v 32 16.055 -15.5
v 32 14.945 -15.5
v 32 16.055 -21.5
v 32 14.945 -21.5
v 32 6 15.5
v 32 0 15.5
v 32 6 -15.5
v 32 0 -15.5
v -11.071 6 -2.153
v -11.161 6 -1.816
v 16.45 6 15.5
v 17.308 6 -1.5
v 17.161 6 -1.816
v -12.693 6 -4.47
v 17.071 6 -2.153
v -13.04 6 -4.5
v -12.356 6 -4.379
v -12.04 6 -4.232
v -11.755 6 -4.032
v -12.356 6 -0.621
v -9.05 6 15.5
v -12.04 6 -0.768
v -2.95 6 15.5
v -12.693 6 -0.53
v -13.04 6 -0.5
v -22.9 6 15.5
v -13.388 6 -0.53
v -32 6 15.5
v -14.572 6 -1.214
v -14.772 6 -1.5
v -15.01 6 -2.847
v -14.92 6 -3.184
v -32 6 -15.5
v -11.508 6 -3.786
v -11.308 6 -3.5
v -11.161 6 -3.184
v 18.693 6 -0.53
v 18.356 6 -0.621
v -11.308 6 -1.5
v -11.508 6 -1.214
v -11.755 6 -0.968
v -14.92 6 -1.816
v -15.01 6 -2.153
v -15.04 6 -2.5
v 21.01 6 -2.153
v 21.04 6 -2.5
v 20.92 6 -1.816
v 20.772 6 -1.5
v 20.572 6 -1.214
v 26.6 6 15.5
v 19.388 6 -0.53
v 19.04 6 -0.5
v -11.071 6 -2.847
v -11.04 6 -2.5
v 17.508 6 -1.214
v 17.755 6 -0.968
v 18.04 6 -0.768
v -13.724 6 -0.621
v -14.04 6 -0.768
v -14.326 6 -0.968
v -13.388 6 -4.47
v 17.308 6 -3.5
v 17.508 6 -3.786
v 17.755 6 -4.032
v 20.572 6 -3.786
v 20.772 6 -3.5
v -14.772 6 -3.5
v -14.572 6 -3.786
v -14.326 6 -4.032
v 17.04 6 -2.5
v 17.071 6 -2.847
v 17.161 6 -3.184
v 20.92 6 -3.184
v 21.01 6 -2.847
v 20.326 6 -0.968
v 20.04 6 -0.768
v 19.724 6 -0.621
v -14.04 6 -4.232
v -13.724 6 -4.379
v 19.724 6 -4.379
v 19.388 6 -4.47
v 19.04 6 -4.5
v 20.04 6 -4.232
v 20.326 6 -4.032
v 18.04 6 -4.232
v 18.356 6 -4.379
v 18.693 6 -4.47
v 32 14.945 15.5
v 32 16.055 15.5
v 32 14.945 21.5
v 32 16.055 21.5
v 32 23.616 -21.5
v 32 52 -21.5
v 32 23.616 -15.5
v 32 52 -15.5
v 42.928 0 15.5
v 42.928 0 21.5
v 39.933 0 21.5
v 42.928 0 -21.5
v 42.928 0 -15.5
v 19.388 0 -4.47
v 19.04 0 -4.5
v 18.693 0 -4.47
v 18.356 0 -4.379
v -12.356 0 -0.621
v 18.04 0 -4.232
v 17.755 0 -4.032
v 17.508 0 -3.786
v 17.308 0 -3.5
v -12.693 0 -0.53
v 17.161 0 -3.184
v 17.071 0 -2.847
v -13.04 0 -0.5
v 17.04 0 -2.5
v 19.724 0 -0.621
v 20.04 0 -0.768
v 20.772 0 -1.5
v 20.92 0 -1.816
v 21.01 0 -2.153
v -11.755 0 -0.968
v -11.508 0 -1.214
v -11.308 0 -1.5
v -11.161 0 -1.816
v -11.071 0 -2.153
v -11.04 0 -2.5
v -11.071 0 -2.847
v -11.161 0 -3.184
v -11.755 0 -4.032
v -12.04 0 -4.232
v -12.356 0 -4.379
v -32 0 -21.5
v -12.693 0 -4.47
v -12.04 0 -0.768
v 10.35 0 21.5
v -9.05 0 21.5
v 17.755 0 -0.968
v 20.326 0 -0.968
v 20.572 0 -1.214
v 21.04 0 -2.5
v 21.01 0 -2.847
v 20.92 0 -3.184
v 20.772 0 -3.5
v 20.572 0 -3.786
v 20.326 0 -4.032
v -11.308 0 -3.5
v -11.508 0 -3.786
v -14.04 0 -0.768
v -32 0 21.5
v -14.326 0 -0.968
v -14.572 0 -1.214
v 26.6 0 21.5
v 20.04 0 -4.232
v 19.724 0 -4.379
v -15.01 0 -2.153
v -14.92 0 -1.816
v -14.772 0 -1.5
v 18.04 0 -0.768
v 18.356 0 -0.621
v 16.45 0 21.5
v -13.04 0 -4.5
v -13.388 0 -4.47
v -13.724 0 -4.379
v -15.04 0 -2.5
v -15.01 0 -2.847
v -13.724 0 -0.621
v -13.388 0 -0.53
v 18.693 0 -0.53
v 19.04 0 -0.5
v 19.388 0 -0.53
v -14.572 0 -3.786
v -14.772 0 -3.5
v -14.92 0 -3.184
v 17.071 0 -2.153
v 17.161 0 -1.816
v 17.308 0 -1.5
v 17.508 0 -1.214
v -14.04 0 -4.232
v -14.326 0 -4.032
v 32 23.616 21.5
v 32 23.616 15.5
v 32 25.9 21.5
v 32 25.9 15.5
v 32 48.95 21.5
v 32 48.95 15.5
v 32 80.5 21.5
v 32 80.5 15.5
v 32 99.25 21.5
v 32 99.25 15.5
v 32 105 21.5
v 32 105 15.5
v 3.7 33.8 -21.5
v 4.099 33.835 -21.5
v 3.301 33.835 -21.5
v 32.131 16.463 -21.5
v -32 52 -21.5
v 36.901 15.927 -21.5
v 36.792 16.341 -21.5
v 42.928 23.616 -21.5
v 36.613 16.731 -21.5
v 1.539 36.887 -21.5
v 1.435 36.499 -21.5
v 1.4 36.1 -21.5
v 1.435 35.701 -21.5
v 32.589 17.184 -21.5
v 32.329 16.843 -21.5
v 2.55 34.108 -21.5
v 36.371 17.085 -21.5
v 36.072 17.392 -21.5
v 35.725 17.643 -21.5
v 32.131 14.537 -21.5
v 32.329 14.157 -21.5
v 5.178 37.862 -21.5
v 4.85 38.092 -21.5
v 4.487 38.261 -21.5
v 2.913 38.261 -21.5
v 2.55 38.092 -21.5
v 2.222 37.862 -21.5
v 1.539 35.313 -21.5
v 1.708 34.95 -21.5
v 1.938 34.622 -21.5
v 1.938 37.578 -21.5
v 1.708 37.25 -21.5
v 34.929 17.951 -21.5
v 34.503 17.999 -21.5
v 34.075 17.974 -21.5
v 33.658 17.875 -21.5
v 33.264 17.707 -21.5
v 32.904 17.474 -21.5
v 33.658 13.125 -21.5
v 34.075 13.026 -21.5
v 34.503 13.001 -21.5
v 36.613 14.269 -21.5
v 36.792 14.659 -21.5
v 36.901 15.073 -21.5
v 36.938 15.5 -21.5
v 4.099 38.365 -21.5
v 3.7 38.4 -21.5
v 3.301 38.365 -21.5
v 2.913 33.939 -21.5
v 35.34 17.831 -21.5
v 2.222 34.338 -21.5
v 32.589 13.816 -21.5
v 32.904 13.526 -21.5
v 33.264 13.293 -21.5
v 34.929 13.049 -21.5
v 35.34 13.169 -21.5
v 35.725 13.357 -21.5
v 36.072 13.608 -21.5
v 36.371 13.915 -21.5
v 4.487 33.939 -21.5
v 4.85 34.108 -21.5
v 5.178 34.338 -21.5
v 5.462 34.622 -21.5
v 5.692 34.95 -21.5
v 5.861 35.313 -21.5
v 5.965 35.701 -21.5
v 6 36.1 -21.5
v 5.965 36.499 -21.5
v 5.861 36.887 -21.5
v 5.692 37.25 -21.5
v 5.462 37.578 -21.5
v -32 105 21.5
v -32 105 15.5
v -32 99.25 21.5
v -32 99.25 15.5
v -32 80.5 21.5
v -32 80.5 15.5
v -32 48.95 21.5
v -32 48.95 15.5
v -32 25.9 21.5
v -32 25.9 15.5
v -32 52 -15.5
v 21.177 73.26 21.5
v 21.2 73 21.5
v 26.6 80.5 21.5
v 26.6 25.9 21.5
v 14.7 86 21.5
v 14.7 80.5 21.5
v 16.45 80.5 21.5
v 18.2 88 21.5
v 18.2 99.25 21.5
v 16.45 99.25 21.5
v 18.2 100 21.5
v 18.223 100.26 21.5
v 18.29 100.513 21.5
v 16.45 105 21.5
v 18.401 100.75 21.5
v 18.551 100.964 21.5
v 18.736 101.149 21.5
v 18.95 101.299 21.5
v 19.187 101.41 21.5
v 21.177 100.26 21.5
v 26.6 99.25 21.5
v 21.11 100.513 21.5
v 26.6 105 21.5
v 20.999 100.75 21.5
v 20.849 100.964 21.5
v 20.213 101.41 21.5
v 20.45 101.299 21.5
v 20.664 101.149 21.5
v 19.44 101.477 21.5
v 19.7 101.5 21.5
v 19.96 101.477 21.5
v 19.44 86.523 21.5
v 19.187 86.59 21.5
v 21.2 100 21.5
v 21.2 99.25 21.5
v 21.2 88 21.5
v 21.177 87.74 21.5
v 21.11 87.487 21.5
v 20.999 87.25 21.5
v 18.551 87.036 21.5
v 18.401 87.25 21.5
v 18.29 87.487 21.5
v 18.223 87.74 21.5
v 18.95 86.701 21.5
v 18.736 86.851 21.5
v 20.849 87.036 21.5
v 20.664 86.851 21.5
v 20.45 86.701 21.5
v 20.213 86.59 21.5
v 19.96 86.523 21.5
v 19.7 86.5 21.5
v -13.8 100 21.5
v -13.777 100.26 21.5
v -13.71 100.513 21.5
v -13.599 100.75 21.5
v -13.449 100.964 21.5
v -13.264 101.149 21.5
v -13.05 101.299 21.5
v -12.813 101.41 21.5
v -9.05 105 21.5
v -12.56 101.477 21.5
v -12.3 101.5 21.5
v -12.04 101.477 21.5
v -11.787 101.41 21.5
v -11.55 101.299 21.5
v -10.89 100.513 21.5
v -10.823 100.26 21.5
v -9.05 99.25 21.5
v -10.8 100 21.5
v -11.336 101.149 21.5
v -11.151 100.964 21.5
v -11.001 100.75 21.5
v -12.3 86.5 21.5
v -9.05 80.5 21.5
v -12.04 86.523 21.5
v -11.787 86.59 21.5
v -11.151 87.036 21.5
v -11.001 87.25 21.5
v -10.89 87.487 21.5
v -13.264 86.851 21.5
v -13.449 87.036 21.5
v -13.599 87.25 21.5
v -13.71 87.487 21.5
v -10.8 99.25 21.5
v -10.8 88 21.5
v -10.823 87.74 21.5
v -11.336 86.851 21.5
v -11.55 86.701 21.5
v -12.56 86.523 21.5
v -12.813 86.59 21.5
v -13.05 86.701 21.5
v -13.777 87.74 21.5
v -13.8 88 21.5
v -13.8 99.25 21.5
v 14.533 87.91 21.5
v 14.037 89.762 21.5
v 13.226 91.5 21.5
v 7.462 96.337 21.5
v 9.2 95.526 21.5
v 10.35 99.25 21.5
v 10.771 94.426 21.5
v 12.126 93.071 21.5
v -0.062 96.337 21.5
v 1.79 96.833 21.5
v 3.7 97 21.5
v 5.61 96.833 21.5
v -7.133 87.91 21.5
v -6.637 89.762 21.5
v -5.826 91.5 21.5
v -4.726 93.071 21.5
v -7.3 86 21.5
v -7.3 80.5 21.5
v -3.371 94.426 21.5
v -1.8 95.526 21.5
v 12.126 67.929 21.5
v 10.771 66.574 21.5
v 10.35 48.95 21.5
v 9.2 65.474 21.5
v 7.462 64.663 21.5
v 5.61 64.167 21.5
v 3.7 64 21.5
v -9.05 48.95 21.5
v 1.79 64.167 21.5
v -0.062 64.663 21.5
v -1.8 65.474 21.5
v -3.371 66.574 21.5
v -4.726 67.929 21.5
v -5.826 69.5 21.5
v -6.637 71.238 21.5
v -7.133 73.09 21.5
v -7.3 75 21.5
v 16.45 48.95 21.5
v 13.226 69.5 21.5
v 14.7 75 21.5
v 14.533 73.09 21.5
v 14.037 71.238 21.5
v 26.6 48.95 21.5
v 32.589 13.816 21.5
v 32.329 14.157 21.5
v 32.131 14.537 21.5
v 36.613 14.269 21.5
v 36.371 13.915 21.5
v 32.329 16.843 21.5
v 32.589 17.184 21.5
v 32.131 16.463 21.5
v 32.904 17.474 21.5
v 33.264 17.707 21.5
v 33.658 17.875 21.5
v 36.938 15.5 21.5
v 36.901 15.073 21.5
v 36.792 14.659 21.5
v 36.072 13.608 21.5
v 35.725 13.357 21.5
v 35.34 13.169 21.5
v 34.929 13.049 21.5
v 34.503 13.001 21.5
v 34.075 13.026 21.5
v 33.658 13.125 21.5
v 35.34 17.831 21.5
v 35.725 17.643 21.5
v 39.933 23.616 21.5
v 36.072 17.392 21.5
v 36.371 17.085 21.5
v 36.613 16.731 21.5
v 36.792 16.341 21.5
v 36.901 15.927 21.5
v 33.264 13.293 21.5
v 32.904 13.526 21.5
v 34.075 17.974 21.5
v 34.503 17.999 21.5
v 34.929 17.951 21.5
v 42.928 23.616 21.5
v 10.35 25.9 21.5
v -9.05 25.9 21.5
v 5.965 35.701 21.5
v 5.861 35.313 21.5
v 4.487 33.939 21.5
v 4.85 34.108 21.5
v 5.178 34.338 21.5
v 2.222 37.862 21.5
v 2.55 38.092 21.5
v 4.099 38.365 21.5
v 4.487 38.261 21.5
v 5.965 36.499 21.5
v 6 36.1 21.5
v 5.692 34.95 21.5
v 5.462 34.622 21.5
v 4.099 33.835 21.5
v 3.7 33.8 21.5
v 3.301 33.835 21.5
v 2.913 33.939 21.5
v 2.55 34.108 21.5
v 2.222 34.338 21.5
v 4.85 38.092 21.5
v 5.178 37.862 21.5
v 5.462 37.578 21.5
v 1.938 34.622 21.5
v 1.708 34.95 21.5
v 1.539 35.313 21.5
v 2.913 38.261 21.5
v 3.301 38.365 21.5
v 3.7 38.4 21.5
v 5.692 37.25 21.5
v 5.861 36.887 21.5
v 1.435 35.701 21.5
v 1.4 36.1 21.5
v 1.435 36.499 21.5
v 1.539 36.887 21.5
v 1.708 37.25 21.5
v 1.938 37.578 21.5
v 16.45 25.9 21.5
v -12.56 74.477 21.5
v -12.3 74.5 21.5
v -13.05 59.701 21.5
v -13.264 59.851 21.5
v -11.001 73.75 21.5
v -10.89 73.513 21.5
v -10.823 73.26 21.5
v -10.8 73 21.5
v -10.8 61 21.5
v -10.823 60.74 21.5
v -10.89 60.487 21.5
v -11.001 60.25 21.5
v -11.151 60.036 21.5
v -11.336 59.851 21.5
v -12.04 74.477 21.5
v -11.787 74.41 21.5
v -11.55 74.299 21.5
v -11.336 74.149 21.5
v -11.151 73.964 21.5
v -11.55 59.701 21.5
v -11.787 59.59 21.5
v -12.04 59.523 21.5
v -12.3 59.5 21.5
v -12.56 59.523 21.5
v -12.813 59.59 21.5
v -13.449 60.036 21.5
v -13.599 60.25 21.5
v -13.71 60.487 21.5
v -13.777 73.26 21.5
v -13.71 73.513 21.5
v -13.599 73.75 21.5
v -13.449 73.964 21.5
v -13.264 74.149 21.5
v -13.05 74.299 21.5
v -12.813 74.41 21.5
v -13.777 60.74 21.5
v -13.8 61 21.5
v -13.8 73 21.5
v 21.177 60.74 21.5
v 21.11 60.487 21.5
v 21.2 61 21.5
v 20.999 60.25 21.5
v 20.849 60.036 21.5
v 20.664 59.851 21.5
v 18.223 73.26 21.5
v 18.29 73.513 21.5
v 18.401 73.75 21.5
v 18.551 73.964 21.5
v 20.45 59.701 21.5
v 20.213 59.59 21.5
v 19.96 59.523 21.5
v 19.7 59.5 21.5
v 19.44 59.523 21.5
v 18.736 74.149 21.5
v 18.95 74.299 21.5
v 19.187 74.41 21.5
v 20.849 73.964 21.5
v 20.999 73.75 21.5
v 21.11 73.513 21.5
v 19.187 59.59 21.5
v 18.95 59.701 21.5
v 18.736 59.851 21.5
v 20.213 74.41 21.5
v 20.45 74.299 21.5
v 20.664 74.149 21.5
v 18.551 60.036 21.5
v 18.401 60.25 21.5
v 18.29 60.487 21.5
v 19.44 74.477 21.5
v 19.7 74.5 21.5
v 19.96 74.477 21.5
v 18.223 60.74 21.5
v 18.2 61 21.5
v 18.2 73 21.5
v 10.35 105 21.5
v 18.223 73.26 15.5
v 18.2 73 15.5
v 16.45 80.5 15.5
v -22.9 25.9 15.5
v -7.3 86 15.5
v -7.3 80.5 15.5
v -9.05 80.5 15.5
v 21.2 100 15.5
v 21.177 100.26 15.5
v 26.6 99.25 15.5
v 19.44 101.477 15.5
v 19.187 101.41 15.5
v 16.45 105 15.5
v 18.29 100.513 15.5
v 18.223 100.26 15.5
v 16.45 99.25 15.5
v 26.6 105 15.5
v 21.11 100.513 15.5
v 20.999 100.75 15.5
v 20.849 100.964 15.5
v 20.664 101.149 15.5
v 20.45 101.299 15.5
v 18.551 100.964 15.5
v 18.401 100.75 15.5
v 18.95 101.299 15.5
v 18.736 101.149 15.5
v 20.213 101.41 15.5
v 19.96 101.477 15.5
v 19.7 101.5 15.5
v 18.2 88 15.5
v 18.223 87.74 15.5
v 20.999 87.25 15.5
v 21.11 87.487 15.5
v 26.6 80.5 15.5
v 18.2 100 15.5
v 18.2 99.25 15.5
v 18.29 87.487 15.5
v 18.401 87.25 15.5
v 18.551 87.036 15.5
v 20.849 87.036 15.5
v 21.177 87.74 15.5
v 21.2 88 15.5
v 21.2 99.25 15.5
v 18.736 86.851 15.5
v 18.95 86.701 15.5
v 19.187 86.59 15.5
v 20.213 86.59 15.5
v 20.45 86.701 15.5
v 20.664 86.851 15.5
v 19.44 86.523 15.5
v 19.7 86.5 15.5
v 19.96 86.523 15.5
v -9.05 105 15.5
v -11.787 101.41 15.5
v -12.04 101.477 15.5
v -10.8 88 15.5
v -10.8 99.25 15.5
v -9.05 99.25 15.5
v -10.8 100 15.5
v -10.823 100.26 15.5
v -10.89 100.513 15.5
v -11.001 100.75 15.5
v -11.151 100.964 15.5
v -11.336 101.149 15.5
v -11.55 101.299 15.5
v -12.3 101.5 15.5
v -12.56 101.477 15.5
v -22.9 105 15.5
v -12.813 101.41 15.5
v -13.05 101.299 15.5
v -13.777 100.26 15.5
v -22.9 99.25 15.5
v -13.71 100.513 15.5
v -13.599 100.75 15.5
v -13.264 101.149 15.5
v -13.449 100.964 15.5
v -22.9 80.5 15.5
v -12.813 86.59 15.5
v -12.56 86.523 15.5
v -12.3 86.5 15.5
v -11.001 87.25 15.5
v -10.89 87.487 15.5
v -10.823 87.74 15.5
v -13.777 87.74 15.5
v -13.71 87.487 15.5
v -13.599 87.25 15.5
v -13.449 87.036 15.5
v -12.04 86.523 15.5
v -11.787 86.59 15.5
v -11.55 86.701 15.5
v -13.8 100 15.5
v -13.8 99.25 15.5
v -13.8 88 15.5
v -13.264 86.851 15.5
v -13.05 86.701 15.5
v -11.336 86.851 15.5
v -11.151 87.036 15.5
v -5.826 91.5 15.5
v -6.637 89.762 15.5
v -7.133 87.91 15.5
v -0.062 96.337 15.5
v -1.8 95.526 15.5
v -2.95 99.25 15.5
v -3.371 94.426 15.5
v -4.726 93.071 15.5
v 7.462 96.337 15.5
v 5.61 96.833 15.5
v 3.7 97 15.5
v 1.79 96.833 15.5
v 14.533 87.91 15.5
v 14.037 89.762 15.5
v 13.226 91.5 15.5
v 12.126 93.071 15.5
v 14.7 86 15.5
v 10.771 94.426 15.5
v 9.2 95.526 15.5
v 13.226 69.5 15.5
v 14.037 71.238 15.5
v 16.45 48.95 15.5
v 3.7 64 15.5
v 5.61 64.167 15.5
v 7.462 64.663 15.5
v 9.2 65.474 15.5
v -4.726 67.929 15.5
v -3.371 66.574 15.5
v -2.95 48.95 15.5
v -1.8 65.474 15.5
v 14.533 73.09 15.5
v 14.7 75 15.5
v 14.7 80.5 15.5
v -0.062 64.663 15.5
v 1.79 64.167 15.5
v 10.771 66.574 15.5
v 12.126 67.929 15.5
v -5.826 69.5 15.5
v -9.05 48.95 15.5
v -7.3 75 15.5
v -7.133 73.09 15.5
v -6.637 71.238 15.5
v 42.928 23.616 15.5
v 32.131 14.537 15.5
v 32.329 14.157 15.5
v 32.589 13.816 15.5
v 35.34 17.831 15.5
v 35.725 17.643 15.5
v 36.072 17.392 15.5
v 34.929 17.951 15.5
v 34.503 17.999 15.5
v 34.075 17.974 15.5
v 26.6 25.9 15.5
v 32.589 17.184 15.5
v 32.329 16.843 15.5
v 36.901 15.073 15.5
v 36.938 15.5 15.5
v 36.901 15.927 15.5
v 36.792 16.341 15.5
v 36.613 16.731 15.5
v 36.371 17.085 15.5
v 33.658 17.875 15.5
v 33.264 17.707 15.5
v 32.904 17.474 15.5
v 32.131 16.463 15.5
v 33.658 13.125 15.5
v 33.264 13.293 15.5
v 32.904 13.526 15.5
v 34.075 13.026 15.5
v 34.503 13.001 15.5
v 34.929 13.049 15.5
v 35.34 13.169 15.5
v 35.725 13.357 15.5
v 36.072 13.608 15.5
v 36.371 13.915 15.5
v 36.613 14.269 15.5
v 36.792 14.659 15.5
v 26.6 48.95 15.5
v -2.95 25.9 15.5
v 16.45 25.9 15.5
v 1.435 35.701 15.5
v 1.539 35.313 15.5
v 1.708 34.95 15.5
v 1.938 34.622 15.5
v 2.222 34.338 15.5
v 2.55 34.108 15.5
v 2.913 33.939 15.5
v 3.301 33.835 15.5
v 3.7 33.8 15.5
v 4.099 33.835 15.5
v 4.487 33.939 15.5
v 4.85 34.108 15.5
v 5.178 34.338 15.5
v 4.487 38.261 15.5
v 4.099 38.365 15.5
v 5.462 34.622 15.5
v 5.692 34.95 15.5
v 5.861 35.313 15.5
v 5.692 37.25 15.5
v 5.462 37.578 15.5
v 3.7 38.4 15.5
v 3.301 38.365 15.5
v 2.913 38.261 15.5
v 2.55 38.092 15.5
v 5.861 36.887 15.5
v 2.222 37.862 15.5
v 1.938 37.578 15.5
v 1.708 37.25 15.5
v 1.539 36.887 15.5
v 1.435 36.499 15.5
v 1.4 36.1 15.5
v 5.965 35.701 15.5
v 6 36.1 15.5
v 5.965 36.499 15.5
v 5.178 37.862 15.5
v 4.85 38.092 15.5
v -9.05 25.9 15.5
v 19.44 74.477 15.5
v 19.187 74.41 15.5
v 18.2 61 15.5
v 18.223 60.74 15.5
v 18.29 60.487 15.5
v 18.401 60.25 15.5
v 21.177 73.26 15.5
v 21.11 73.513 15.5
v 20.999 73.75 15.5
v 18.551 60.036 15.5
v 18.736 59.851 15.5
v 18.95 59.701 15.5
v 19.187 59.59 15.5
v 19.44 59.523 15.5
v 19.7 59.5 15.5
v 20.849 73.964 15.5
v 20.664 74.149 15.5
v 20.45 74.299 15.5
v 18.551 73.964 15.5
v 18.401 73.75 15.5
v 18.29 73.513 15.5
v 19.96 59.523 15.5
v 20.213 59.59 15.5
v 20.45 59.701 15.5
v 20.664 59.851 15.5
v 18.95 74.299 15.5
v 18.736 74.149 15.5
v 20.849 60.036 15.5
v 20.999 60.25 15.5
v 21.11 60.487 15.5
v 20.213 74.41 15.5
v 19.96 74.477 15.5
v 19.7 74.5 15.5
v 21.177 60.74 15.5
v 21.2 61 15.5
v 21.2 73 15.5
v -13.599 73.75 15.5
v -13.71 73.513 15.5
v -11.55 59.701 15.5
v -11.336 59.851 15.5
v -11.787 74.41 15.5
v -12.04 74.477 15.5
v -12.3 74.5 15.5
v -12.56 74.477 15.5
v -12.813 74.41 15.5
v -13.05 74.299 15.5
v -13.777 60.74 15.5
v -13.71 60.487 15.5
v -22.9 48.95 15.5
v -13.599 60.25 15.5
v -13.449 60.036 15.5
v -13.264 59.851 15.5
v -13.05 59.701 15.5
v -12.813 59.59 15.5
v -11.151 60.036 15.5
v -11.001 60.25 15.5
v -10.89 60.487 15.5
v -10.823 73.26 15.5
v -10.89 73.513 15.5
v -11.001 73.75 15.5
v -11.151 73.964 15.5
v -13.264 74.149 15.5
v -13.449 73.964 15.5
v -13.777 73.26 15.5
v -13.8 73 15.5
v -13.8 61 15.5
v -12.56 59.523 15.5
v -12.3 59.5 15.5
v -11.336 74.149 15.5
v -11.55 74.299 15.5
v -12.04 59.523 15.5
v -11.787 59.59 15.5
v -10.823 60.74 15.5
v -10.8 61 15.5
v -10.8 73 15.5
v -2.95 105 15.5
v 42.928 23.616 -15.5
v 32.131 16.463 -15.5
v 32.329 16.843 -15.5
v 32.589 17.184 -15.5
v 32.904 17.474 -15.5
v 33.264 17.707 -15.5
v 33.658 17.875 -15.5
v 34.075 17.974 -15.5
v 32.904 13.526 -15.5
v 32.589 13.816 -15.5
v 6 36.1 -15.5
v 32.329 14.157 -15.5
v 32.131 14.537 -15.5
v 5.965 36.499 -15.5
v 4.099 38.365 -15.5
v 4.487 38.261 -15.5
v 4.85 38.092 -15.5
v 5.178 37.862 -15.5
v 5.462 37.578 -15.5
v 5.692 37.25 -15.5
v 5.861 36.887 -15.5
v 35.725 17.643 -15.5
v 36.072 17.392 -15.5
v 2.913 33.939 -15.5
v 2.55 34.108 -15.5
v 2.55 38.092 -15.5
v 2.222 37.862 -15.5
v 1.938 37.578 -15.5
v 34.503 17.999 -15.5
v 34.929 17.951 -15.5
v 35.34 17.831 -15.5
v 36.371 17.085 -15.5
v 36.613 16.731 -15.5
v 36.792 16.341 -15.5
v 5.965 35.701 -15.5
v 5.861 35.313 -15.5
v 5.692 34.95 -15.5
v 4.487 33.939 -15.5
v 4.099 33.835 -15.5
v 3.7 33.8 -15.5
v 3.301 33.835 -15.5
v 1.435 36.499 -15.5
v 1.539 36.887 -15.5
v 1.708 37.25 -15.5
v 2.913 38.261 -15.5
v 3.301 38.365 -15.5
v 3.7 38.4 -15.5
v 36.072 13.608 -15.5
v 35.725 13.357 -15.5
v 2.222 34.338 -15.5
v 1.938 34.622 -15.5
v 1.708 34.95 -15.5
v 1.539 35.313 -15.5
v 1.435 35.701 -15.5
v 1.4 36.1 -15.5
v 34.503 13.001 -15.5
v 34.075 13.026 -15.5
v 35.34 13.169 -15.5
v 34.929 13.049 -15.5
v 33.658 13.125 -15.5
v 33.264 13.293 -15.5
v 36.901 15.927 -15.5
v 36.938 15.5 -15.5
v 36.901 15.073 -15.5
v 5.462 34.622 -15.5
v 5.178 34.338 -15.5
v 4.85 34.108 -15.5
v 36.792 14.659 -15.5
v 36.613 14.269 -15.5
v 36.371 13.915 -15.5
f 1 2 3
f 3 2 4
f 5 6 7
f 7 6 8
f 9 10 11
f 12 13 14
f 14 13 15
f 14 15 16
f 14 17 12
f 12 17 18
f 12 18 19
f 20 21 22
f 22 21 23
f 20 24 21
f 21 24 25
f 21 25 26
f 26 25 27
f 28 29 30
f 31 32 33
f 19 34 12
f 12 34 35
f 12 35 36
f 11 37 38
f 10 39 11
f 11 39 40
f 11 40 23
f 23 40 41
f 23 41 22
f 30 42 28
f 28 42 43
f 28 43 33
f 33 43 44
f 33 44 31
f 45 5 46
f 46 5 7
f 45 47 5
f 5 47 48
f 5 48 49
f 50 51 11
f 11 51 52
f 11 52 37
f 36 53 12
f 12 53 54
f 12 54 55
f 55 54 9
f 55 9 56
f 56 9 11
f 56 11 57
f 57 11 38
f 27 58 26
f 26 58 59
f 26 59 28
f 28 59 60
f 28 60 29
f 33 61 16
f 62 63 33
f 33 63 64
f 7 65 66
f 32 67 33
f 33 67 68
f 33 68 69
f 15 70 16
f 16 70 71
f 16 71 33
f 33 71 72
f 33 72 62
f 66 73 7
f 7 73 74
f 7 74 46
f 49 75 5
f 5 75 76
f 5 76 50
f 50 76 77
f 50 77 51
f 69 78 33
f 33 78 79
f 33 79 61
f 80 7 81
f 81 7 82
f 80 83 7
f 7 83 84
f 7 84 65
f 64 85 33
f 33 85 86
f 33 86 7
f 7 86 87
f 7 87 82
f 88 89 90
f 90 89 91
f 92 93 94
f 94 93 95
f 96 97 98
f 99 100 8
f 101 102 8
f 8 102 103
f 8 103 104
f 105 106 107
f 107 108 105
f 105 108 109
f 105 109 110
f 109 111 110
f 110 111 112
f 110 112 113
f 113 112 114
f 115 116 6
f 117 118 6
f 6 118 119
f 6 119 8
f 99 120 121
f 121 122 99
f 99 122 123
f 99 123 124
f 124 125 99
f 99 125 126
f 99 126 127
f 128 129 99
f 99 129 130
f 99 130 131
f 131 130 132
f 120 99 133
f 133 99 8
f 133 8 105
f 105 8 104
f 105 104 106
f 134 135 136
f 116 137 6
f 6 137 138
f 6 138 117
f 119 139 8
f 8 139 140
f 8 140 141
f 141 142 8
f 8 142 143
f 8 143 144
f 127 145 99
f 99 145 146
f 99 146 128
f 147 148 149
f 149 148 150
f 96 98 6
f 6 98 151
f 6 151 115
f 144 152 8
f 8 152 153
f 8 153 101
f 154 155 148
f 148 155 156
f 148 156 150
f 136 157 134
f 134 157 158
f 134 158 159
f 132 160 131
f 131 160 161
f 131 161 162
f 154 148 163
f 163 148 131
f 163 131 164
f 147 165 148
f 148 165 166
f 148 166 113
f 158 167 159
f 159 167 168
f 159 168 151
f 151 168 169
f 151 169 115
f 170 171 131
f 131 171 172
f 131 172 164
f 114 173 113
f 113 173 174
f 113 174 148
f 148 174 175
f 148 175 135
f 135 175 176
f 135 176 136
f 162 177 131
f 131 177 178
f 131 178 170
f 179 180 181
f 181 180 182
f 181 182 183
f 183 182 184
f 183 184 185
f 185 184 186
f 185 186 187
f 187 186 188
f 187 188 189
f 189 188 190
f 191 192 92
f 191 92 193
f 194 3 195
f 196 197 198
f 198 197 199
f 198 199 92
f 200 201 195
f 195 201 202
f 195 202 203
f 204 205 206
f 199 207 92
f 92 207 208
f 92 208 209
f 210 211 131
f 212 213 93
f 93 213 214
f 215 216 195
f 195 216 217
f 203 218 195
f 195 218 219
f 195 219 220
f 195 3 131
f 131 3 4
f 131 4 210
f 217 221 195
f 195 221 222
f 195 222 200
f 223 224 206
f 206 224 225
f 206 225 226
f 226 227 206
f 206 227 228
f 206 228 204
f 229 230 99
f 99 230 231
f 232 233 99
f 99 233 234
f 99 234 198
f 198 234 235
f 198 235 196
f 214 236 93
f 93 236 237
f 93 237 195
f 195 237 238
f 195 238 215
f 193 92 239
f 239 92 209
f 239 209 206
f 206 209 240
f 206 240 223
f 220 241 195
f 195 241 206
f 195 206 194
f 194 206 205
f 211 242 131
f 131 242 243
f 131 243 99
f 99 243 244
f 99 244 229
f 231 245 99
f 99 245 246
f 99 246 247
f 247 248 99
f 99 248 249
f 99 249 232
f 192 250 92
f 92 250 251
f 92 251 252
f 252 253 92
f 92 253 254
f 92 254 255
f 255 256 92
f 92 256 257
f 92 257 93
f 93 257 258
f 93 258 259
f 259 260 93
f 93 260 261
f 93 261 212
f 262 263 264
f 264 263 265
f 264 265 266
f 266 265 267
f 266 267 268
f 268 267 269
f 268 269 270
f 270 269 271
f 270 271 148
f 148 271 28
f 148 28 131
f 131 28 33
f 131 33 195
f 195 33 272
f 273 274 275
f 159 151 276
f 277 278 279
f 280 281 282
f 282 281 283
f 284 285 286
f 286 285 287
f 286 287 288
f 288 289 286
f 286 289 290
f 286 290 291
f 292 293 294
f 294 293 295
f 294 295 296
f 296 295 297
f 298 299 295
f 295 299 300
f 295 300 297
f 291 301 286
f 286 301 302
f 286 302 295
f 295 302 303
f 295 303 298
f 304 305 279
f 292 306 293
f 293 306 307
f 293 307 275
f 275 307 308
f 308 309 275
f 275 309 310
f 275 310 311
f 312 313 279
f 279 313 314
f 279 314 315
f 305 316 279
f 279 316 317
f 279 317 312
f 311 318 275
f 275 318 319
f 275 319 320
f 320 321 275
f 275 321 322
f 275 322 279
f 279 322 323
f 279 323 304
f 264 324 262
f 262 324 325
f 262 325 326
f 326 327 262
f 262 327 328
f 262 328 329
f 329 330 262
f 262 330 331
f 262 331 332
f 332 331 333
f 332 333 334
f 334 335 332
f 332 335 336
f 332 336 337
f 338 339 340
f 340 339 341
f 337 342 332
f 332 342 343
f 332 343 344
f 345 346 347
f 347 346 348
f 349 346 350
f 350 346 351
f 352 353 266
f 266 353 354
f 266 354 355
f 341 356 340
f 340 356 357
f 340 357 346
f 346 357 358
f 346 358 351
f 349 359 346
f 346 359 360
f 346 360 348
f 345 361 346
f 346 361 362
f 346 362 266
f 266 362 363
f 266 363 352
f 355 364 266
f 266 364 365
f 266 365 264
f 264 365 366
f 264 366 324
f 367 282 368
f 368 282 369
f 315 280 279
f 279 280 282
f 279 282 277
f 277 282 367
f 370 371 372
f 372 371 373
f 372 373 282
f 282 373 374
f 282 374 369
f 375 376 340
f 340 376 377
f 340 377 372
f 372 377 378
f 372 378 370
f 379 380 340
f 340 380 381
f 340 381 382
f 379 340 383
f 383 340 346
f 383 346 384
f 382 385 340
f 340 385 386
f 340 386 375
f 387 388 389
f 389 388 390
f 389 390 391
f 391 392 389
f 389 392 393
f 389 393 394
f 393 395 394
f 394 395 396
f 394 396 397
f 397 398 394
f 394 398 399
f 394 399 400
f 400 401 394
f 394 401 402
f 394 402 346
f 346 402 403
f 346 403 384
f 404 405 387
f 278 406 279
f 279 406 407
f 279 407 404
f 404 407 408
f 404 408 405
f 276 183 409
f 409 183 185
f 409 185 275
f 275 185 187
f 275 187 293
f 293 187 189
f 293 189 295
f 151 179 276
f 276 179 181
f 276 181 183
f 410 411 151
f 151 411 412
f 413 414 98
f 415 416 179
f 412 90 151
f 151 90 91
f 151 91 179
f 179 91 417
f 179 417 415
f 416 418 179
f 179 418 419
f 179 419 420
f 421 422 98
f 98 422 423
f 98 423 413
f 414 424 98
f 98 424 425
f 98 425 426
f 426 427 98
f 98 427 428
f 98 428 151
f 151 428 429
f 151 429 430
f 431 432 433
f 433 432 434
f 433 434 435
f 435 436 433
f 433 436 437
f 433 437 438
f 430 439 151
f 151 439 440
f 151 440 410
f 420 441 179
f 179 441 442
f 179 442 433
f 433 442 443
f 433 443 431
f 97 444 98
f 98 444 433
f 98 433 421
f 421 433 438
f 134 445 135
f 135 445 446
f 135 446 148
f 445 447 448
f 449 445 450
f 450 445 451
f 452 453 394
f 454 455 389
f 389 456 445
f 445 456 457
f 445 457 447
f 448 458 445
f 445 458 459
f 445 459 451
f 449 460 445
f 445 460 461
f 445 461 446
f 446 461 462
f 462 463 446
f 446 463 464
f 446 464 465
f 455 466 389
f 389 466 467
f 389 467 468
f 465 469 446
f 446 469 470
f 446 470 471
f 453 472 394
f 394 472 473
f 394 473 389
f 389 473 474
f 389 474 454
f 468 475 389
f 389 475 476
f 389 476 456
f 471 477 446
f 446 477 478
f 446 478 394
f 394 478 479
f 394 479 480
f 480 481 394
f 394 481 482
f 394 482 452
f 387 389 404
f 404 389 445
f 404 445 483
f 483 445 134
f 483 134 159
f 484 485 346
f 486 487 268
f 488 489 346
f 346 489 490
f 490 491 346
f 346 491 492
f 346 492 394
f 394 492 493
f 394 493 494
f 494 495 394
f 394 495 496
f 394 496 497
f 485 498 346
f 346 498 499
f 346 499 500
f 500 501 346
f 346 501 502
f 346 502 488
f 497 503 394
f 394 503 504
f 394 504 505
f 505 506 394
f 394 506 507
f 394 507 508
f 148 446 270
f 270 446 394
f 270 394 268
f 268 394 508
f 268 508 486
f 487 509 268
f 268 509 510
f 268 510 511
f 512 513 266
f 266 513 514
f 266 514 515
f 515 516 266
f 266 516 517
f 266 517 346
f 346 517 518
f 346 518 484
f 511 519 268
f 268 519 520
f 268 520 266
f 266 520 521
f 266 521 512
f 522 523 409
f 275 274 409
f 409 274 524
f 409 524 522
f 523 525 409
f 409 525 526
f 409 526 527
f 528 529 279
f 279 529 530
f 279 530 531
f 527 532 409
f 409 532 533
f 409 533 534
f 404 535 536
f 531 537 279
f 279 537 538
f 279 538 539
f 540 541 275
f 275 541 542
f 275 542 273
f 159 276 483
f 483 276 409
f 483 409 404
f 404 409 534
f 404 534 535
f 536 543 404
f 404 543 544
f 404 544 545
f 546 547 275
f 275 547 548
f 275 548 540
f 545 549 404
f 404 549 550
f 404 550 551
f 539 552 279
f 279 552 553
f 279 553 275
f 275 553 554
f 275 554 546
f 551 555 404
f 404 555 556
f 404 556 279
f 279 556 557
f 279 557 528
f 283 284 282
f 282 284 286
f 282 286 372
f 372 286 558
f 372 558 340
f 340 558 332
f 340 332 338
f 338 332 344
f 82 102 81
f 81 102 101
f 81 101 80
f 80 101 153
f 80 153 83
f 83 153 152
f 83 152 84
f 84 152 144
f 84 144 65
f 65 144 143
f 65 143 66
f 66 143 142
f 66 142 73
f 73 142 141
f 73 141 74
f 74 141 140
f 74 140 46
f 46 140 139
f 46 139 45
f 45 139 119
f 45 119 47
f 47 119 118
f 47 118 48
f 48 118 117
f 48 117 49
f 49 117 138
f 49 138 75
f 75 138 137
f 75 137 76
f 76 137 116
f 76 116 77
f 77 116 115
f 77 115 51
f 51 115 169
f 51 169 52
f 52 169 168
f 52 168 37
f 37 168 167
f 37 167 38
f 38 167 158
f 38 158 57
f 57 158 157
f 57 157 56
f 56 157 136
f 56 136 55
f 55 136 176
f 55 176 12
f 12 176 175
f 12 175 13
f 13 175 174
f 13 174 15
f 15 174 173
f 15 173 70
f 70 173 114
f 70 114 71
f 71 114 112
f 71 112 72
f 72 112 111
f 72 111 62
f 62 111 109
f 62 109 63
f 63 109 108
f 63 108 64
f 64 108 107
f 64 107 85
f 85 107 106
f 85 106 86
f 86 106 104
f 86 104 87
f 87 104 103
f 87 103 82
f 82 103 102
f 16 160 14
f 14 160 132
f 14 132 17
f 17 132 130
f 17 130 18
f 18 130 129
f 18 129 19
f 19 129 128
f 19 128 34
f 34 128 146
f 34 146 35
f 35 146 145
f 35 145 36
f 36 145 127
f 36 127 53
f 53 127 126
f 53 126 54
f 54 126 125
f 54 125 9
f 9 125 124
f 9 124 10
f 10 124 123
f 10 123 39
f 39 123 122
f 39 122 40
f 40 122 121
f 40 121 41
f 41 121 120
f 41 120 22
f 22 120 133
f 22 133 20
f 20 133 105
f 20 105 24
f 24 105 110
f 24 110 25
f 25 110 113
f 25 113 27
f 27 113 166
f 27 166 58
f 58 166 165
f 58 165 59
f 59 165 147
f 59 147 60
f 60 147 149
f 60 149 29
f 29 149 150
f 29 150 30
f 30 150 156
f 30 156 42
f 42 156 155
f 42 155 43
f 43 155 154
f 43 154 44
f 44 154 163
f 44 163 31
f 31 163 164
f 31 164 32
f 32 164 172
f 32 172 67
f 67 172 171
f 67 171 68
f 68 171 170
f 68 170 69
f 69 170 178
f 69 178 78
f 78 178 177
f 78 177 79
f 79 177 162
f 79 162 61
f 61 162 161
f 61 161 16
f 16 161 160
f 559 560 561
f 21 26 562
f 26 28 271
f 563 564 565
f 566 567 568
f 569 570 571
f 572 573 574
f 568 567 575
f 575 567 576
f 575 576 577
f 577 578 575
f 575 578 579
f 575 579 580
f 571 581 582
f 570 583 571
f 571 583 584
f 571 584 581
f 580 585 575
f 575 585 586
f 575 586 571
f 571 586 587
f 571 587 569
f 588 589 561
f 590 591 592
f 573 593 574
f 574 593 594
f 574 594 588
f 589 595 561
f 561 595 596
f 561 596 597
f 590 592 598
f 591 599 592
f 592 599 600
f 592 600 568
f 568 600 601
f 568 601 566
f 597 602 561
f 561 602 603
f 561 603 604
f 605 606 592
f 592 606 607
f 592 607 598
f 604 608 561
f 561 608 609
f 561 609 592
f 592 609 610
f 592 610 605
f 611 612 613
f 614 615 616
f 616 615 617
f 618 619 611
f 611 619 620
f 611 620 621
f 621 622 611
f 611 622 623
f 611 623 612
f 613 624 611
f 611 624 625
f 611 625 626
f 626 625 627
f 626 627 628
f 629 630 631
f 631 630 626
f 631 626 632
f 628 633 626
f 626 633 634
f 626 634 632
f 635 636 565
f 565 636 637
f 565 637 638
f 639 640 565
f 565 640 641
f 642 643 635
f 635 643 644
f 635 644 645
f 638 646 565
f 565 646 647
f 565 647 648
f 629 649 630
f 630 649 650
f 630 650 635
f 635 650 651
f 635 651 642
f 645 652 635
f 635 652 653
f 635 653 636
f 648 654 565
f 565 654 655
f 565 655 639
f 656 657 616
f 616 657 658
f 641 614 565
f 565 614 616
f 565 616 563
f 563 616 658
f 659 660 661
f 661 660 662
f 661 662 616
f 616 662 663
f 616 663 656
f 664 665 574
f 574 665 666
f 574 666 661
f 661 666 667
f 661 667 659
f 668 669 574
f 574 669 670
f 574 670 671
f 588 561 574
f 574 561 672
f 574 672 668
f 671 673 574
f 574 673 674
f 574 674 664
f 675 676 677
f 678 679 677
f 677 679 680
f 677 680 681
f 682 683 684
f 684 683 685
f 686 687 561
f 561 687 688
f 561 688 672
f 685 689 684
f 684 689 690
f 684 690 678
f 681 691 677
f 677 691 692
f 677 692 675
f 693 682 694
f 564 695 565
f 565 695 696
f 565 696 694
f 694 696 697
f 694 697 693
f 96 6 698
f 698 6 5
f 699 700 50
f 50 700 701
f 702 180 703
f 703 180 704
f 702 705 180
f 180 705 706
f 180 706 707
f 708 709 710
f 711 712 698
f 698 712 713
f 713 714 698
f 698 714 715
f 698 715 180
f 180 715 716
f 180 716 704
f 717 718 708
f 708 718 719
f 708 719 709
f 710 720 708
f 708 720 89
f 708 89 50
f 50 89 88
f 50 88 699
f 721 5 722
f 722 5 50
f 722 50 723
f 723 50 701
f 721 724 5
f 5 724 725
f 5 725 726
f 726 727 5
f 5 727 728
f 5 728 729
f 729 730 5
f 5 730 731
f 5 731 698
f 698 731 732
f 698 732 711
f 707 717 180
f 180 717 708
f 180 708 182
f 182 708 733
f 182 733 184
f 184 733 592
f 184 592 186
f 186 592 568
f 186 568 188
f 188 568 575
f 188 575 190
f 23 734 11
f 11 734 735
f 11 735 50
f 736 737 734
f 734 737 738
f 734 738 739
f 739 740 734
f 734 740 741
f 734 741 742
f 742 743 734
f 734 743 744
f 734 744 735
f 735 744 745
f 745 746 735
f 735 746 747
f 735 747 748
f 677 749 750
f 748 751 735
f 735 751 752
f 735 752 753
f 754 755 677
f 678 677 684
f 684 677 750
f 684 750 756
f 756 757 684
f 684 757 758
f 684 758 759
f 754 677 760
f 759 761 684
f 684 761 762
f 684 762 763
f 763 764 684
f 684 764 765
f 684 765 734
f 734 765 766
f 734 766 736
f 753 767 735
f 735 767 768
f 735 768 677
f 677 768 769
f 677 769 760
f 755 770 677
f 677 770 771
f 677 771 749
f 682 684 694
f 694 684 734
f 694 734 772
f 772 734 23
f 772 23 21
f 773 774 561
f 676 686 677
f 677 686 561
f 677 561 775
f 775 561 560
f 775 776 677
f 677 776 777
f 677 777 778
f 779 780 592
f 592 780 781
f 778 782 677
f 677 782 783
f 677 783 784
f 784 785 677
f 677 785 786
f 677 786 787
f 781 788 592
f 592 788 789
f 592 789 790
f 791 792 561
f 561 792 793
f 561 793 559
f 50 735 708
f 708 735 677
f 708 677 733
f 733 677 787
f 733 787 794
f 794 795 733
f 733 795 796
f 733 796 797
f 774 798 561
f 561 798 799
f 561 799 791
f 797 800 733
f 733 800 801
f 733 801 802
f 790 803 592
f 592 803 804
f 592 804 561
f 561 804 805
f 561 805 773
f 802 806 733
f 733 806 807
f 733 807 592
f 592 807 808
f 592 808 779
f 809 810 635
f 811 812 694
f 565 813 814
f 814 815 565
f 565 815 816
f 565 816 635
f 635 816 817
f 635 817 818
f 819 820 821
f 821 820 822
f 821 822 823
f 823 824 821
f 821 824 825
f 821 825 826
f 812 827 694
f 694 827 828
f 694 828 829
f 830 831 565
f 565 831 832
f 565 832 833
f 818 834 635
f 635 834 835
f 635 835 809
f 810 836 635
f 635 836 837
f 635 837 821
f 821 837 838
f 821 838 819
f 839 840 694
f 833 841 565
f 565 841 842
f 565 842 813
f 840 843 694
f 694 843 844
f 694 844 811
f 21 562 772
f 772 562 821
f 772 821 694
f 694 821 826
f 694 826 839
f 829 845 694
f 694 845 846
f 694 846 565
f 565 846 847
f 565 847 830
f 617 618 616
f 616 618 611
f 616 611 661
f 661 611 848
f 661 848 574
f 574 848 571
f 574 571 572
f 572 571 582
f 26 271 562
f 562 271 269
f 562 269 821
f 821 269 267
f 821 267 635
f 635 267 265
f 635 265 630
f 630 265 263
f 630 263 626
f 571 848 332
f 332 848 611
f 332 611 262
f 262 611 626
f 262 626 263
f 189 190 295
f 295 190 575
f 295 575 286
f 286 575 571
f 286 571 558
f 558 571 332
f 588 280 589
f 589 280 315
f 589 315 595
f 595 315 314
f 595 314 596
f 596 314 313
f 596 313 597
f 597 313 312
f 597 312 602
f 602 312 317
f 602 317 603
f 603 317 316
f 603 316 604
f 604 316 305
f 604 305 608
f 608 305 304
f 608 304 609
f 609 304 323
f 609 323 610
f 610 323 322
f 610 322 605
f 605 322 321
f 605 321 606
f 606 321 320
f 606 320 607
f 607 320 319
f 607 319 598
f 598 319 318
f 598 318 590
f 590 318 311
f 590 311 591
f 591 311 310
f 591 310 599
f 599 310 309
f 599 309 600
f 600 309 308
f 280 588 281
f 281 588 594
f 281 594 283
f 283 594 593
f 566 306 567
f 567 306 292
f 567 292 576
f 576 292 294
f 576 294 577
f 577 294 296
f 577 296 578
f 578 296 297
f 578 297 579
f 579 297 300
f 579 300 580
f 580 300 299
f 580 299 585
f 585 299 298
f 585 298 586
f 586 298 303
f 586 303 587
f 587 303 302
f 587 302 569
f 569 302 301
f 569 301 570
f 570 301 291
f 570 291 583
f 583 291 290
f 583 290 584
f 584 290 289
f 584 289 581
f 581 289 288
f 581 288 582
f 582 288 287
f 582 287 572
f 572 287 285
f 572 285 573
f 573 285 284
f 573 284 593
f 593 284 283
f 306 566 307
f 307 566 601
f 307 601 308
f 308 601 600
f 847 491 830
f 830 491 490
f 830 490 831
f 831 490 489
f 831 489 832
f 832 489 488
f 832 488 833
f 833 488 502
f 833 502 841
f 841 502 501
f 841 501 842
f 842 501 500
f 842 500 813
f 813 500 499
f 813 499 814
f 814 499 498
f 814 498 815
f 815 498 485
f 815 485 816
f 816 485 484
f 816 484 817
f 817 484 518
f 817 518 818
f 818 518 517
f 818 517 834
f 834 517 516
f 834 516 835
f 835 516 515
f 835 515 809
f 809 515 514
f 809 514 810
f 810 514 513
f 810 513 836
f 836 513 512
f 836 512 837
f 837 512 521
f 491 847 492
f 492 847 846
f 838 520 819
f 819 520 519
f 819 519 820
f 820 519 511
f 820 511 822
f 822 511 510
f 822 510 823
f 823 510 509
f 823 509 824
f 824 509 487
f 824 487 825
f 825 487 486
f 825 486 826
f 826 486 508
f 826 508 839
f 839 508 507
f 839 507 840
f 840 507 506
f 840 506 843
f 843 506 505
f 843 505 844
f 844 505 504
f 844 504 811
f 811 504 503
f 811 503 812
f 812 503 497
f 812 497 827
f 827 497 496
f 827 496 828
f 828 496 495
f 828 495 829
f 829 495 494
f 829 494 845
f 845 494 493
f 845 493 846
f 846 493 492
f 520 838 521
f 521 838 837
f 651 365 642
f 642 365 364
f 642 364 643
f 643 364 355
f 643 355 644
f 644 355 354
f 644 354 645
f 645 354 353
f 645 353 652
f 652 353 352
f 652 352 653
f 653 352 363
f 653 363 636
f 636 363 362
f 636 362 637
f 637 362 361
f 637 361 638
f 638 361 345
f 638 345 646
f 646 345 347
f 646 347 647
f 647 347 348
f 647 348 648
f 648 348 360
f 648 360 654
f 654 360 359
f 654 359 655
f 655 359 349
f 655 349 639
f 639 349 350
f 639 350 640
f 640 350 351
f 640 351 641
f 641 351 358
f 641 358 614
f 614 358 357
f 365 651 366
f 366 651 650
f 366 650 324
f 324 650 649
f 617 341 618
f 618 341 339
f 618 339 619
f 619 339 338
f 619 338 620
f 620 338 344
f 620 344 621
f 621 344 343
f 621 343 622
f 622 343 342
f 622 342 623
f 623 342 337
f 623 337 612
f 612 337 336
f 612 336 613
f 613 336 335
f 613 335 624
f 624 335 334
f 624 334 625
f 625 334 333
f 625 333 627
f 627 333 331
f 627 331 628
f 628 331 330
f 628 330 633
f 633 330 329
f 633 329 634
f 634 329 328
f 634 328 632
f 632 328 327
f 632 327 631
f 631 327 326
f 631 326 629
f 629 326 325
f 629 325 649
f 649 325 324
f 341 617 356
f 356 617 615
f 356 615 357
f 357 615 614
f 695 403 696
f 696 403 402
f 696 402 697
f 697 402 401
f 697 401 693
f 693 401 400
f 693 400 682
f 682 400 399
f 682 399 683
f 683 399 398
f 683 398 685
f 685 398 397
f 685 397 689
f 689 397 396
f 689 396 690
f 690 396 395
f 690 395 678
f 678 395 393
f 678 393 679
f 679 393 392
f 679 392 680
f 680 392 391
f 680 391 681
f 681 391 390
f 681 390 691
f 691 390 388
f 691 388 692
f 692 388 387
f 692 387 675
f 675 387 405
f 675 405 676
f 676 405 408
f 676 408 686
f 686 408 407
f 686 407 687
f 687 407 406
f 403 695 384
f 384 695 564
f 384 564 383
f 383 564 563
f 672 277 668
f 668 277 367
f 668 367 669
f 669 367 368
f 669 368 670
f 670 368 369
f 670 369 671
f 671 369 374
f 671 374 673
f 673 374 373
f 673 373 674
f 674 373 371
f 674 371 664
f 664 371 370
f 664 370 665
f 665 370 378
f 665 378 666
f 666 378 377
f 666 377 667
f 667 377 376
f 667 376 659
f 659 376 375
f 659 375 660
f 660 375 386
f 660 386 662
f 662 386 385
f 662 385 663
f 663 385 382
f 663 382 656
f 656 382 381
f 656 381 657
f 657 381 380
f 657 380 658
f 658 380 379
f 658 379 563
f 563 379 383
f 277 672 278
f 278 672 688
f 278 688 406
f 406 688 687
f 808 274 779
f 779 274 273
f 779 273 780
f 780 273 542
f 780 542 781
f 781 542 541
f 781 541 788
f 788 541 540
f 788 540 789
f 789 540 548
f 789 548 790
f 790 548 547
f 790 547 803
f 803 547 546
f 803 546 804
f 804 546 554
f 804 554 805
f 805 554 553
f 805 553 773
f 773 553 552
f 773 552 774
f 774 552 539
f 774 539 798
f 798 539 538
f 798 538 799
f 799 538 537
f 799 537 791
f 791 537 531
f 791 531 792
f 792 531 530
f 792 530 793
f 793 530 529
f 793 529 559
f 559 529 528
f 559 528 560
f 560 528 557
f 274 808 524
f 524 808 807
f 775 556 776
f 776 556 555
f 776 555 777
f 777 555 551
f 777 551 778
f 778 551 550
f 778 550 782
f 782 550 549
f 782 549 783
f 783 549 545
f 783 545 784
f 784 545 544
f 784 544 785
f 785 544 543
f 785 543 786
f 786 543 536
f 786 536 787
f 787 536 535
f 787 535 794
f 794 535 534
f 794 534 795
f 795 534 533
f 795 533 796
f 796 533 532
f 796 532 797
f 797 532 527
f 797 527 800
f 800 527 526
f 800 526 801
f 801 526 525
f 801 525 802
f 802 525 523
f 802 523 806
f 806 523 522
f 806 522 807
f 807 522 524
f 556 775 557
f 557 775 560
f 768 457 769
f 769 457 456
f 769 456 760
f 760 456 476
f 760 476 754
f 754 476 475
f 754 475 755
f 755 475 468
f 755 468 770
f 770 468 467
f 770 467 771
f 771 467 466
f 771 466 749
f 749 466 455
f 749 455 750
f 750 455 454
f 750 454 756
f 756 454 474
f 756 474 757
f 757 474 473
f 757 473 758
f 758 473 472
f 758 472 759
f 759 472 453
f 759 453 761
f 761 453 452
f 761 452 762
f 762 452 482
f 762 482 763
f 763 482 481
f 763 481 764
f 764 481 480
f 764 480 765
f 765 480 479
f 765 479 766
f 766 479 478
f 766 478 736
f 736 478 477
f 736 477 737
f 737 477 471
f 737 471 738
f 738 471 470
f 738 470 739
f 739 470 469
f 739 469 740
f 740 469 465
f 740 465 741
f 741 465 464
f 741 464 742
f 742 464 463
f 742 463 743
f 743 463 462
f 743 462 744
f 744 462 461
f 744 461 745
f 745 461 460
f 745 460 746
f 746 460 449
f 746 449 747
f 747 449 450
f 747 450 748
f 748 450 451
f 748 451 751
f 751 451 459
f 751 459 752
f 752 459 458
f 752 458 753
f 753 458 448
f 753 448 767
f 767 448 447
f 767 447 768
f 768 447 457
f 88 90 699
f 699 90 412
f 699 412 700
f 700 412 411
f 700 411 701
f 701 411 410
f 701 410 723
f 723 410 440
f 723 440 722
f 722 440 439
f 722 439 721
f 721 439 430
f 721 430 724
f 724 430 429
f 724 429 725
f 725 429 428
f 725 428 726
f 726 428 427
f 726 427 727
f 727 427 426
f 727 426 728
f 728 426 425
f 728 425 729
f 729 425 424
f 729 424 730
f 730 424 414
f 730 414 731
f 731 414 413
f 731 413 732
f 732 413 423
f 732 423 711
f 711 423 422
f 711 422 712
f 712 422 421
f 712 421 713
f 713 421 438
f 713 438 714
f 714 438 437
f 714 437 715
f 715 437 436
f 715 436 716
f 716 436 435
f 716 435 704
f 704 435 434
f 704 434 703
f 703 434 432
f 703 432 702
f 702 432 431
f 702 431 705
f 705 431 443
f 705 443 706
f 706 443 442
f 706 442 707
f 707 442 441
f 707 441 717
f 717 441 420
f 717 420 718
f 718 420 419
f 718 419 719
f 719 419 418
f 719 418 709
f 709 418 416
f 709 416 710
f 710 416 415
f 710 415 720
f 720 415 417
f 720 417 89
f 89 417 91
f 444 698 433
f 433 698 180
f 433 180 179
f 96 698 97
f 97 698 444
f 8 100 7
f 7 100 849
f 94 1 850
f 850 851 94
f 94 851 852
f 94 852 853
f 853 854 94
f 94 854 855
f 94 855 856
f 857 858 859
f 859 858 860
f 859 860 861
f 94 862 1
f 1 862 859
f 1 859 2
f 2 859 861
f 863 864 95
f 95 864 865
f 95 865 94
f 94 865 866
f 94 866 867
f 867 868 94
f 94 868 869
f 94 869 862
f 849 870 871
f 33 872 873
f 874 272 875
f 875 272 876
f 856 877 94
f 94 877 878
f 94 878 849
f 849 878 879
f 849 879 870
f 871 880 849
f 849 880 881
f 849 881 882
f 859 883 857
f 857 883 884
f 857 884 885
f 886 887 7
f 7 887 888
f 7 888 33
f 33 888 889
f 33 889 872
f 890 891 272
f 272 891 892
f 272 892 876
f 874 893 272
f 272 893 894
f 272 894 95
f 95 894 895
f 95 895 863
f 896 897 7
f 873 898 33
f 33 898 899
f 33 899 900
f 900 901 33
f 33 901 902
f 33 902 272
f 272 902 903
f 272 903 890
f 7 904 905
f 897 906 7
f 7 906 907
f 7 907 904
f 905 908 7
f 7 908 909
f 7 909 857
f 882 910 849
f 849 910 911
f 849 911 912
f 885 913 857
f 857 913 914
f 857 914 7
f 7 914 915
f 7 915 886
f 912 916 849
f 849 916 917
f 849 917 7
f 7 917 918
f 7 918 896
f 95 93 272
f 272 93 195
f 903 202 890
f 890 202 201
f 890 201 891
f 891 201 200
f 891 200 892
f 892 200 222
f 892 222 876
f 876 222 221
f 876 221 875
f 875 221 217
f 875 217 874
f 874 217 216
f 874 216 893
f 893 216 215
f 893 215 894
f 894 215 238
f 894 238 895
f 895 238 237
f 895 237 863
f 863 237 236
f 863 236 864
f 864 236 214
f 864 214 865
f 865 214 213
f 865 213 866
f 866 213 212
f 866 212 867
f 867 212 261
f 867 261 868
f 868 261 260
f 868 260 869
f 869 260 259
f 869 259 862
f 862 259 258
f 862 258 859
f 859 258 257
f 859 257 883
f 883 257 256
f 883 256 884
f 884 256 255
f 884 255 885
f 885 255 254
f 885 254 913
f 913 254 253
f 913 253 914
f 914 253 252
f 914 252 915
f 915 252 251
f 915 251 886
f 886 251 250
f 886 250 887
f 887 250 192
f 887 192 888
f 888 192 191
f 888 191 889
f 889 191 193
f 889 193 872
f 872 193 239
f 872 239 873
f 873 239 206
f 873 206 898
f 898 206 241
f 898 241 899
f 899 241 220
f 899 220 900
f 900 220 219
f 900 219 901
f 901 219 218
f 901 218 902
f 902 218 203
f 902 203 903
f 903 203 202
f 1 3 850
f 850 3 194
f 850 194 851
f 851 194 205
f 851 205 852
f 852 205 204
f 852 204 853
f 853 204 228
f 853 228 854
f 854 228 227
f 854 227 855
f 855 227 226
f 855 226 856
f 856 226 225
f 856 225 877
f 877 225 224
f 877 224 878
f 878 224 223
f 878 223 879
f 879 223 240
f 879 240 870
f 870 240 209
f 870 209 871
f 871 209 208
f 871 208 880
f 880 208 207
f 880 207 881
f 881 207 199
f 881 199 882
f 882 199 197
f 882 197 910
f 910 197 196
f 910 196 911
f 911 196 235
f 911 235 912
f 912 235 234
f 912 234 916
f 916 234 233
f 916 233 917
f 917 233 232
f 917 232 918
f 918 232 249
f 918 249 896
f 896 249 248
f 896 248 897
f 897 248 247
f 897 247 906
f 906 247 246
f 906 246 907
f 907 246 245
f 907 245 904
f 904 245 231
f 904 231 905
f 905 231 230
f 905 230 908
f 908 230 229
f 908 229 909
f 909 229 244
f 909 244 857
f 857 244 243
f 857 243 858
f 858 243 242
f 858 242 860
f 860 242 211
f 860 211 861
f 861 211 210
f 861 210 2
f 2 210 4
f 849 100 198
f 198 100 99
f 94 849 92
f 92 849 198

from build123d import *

# Parameters (mm, degrees)
CROQUIS1_W              = 64
CROQUIS1_H              = 43
CROQUIS1_R              = 2
SALIENTE_EXTRUIR1_DEPTH = 6
CROQUIS2_W              = 64
CROQUIS2_H              = 6
SALIENTE_EXTRUIR2_DEPTH = 99
CROQUIS3_R              = 2.3
CORTAR_EXTRUIR1_DEPTH   = 118.889779031
SALIENTE_EXTRUIR3_DEPTH = 6
CROQUIS5_W              = 64
CROQUIS5_H              = 6
SALIENTE_EXTRUIR4_DEPTH = 46
CORTAR_EXTRUIR2_START   = -6
CROQUIS6_R              = 2.3
CORTAR_EXTRUIR2_DEPTH   = 6
SALIENTE_EXTRUIR5_START = -6
SALIENTE_EXTRUIR5_DEPTH = 6


with BuildPart() as part:
    # Croquis1 → Saliente-Extruir1 (new body)
    with BuildSketch(Plane(origin=(0, 0, 0), x_dir=(1, 0, 0), z_dir=(0, 1, 0))):
        Rectangle(CROQUIS1_W, CROQUIS1_H)
        with Locations(Location((19.040268394, 2.5, 0), (0, 0, 270))):
            Circle(CROQUIS1_R, mode=Mode.SUBTRACT)
        with Locations(Location((-13.040268394, 2.5, 0), (0, 0, 90))):
            Circle(CROQUIS1_R, mode=Mode.SUBTRACT)
    extrude(amount=SALIENTE_EXTRUIR1_DEPTH)

    # Croquis2 → Saliente-Extruir2 (add)
    with BuildSketch(Plane(origin=(0, 6, 0), x_dir=(1, 0, 0), z_dir=(0, 1, 0))):
        with Locations((0, -18.5)):
            Rectangle(CROQUIS2_W, CROQUIS2_H)
    extrude(amount=SALIENTE_EXTRUIR2_DEPTH)

    # Croquis3 → Cortar-Extruir1 (cut, through all)
    with BuildSketch(Plane.XY.offset(21.5)):
        with Locations((3.7, 36.1)):
            Circle(CROQUIS3_R)
        with BuildLine():
            Line((-7.3, 75), (-7.3, 86))
            ThreePointArc((-7.3, 86), (3.7, 97), (14.7, 86))
            Line((14.7, 86), (14.7, 75))
            ThreePointArc((14.7, 75), (3.7, 64), (-7.3, 75))
        make_face()
        with BuildLine():
            Line((-13.8, 88), (-13.8, 100))
            ThreePointArc((-13.8, 100), (-12.3, 101.5), (-10.8, 100))
            Line((-10.8, 100), (-10.8, 88))
            ThreePointArc((-10.8, 88), (-12.3, 86.5), (-13.8, 88))
        make_face()
        with BuildLine():
            Line((-13.8, 73), (-13.8, 61))
            ThreePointArc((-13.8, 61), (-12.3, 59.5), (-10.8, 61))
            Line((-10.8, 61), (-10.8, 73))
            ThreePointArc((-10.8, 73), (-12.3, 74.5), (-13.8, 73))
        make_face()
        with BuildLine():
            Line((21.2, 88), (21.2, 100))
            ThreePointArc((21.2, 100), (19.7, 101.5), (18.2, 100))
            Line((18.2, 100), (18.2, 88))
            ThreePointArc((18.2, 88), (19.7, 86.5), (21.2, 88))
        make_face()
        with BuildLine():
            Line((21.2, 73), (21.2, 61))
            ThreePointArc((21.2, 61), (19.7, 59.5), (18.2, 61))
            Line((18.2, 61), (18.2, 73))
            ThreePointArc((18.2, 73), (19.7, 74.5), (21.2, 73))
        make_face()
    extrude(amount=-CORTAR_EXTRUIR1_DEPTH, mode=Mode.SUBTRACT)

    # Croquis4 → Saliente-Extruir3 (add)
    with BuildSketch(Plane.XY.offset(21.5)):
        with BuildLine():
            Line((32, 0), (42.927948292, 0))
            Line((42.927948292, 0), (42.927948292, 23.616164973))
            Line((42.927948292, 23.616164973), (32, 23.616164973))
            Line((32, 23.616164973), (32, 16.055291722))
            ThreePointArc((32, 16.055291722), (36.937550226, 15.5), (32, 14.944708278))
            Line((32, 14.944708278), (32, 0))
        make_face()
    extrude(amount=-SALIENTE_EXTRUIR3_DEPTH)

    # Croquis5 → Saliente-Extruir4 (add)
    with BuildSketch(Plane(origin=(0, 6, 0), x_dir=(1, 0, 0), z_dir=(0, 1, 0))):
        with Locations((0, 18.5)):
            Rectangle(CROQUIS5_W, CROQUIS5_H)
    extrude(amount=SALIENTE_EXTRUIR4_DEPTH)

    # Croquis6 → Cortar-Extruir2 (cut)
    with BuildSketch(Plane(origin=(0, 0, -21.5), x_dir=(-1, 0, 0), z_dir=(0, 0, -1)).offset(CORTAR_EXTRUIR2_START)):
        with Locations(Location((-3.7, 36.1, 0), (0, 0, 180))):
            Circle(CROQUIS6_R)
    extrude(amount=CORTAR_EXTRUIR2_DEPTH, mode=Mode.SUBTRACT)

    # Croquis7 → Saliente-Extruir5 (add)
    with BuildSketch(Plane(origin=(0, 0, -21.5), x_dir=(-1, 0, 0), z_dir=(0, 0, -1)).offset(SALIENTE_EXTRUIR5_START)):
        with BuildLine():
            Line((-32, 23.616164973), (-42.927948292, 23.616164973))
            Line((-42.927948292, 23.616164973), (-42.927948292, 0))
            Line((-42.927948292, 0), (-32, 0))
            Line((-32, 0), (-32, 14.944708278))
            ThreePointArc((-32, 14.944708278), (-36.937550226, 15.5), (-32, 16.055291722))
            Line((-32, 16.055291722), (-32, 23.616164973))
        make_face()
    extrude(amount=SALIENTE_EXTRUIR5_DEPTH)


solid = part.part
